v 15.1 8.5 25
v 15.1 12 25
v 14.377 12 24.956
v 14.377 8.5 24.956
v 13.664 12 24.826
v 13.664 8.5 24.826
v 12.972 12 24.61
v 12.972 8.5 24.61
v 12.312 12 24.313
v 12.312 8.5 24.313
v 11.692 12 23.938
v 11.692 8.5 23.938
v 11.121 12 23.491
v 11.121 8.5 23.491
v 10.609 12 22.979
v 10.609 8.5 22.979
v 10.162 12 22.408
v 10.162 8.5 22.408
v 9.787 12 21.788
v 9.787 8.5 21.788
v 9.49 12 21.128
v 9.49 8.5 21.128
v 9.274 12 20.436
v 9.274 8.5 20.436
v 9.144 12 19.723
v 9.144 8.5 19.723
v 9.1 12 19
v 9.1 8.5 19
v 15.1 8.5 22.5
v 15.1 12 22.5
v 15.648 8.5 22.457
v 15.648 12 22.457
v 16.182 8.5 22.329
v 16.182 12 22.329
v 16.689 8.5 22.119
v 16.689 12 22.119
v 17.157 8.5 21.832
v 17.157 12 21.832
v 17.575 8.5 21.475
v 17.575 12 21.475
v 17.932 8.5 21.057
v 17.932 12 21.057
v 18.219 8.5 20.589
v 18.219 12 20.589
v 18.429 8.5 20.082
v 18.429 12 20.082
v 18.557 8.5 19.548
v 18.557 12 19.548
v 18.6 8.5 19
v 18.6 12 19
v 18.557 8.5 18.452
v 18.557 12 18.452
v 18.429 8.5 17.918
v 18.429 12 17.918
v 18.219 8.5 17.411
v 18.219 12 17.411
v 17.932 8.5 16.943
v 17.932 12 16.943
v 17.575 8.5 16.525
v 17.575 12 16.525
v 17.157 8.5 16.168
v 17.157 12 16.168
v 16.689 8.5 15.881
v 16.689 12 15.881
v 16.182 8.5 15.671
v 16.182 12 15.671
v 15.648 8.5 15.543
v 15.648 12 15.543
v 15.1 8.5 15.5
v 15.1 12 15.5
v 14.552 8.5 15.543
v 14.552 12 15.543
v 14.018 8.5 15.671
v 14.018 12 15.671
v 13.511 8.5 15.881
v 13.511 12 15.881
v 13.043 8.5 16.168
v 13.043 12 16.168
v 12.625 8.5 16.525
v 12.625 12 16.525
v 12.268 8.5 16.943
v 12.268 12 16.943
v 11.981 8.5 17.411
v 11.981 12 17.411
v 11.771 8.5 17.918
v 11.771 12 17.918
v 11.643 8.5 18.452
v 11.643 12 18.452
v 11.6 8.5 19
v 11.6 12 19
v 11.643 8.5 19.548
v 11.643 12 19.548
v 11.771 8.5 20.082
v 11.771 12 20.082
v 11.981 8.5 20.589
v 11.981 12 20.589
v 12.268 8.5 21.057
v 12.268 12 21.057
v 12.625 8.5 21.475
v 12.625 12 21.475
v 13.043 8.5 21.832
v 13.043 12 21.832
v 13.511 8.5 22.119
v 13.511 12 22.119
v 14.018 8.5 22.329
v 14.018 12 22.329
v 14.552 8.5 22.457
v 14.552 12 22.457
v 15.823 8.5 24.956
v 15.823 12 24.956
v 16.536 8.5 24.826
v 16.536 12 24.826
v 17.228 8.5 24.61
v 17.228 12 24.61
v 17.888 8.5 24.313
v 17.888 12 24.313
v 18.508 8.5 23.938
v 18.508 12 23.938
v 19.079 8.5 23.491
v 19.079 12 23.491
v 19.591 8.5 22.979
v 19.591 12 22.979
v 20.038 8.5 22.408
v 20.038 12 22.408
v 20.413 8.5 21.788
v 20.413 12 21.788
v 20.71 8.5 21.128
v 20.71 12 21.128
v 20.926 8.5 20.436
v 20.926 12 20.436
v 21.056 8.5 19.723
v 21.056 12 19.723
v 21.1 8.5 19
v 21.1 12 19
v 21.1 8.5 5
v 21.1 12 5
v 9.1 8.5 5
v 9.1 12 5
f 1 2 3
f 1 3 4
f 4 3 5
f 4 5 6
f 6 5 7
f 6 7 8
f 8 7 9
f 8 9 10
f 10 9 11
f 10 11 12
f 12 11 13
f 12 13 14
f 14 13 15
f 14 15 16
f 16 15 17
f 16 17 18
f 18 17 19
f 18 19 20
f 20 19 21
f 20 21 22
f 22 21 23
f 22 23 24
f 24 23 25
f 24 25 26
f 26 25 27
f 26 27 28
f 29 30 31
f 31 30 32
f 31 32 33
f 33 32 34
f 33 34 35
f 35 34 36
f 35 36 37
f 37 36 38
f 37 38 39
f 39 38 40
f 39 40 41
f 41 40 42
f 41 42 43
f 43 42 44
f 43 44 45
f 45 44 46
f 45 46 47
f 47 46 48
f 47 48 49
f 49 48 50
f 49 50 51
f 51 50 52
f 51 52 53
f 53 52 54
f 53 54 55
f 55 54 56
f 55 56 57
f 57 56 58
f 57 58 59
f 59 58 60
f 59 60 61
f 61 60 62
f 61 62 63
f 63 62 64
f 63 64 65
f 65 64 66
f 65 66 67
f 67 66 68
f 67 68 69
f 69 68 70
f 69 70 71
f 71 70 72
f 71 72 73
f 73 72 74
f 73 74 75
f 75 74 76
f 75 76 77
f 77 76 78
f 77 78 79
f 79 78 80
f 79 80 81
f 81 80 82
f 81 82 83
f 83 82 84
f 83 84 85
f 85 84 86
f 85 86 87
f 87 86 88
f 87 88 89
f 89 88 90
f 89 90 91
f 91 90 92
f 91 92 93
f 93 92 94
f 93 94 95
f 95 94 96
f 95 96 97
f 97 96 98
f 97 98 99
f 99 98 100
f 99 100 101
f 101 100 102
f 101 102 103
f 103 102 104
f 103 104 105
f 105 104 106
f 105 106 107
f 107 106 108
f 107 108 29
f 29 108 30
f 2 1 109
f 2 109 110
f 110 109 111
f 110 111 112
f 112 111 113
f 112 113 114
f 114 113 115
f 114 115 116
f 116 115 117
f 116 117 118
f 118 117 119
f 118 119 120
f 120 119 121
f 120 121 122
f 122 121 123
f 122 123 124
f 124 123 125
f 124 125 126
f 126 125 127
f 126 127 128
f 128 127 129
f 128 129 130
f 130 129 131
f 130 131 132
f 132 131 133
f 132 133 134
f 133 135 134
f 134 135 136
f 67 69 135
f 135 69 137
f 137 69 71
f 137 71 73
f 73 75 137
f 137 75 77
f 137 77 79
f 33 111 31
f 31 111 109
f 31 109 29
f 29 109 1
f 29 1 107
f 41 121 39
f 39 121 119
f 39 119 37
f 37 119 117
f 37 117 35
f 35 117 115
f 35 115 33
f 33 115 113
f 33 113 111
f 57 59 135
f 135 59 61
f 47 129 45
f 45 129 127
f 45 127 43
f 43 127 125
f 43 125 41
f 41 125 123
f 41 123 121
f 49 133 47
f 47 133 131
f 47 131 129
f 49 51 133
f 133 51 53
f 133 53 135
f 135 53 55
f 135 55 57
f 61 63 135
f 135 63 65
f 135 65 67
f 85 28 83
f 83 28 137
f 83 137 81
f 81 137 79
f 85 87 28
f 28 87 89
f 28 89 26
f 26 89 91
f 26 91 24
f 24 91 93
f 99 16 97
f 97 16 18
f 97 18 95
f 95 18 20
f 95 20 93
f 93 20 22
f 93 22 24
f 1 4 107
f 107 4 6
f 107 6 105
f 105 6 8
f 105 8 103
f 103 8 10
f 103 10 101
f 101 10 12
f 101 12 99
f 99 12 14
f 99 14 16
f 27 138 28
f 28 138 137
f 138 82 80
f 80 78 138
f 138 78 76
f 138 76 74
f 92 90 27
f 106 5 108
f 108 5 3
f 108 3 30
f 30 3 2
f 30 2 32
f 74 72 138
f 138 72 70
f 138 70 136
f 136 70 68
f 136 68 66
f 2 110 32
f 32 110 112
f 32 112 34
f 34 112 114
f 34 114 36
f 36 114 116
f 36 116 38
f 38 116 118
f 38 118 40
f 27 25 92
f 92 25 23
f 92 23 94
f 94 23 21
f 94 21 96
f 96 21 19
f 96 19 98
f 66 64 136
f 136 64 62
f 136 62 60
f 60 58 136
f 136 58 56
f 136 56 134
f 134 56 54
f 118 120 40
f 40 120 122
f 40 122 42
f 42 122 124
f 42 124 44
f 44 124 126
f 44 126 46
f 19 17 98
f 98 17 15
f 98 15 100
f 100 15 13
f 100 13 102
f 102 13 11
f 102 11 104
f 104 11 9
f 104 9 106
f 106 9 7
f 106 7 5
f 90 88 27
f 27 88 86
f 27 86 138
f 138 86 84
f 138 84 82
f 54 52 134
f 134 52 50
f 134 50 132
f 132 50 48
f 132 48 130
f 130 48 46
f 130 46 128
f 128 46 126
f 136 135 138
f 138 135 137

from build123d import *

# Parameters (mm, degrees)
BOSS_EXTRUDE1_DEPTH     = 5
SKETCH2_W               = 3.5
SKETCH2_H               = 12
SKETCH2_W_2             = 3
BOSS_EXTRUDE2_DEPTH     = 20
SKETCH3_W               = 12
SKETCH3_H               = 3
SKETCH3_H_2             = 3.5
BOSS_EXTRUDE3_DEPTH     = 20
SKETCH4_W               = 5
SKETCH4_H               = 8
BOSS_EXTRUDE4_DEPTH     = 18
SKETCH5_R               = 3.5
CUT_EXTRUDE1_DEPTH      = 3.5
SKETCH6_R               = 3.5
CUT_EXTRUDE2_DEPTH      = 3.5
SKETCH7_R               = 1.625
CUT_EXTRUDE3_DEPTH      = 5
SKETCH8_R               = 2.5
CUT_EXTRUDE4_DEPTH      = 3
SKETCH9_R               = 2.5
CUT_EXTRUDE5_DEPTH      = 3
FILLET1_R               = 6
FILLET2_R               = 2
FILLET4_R               = 4
SURFACECUT2_START       = -20
SURFACECUT2_DEPTH       = 25
SURFACECUT2_START_2     = 5
SURFACECUT2_2_OUTLINE_W = 12
SURFACECUT2_2_OUTLINE_H = 3
SURFACECUT2_2_DEPTH     = 20


# Read off the part's stored shape, not the designer's step: SurfaceCut2
with BuildPart() as part:
    # Sketch1 → Boss-Extrude1 (new body)
    with BuildSketch(Plane.XY):
        Polygon((21.1, 0), (38.5, 0), (38.5, 12), (17.6, 12), (17.6, 26), (12.6, 26), (12.6, 12), (0, 12), (0, 0), (9.1, 0), (9.1, -26.5), (21.1, -26.5), align=None)
    extrude(amount=BOSS_EXTRUDE1_DEPTH)

    # Sketch2 → Boss-Extrude2 (add)
    with BuildSketch(Plane(origin=(0, 0, 0), x_dir=(-1, 0, 0), z_dir=(0, 0, -1))):
        with Locations((-1.75, 6)):
            Rectangle(SKETCH2_W, SKETCH2_H)
        with Locations((-37, 6)):
            Rectangle(SKETCH2_W_2, SKETCH2_H)
    extrude(amount=BOSS_EXTRUDE2_DEPTH)

    # Sketch3 → Boss-Extrude3 (add)
    with BuildSketch(Plane.XY.offset(5)):
        with Locations((15.1, -25)):
            Rectangle(SKETCH3_W, SKETCH3_H)
        with Locations((15.1, 10.25)):
            Rectangle(SKETCH3_W, SKETCH3_H_2)
    extrude(amount=BOSS_EXTRUDE3_DEPTH)

    # Sketch4 → Boss-Extrude4 (add)
    with BuildSketch(Plane(origin=(0, 0, 0), x_dir=(-1, 0, 0), z_dir=(0, 0, -1))):
        with Locations((-15.1, 22)):
            Rectangle(SKETCH4_W, SKETCH4_H)
    extrude(amount=BOSS_EXTRUDE4_DEPTH)

    # Sketch5 → Cut-Extrude1 (cut)
    with BuildSketch(Plane.ZY):
        with Locations((-14, 6)):
            Circle(SKETCH5_R)
    extrude(amount=-CUT_EXTRUDE1_DEPTH, mode=Mode.SUBTRACT)

    # Sketch6 → Cut-Extrude2 (cut)
    with BuildSketch(Plane(origin=(0, 12, 0), x_dir=(1, 0, 0), z_dir=(0, 1, 0))):
        with Locations(Location((15.1, -19, 0), (0, 0, 270))):
            Circle(SKETCH6_R)
    extrude(amount=-CUT_EXTRUDE2_DEPTH, mode=Mode.SUBTRACT)

    # Sketch7 → Cut-Extrude3 (cut)
    with BuildSketch(Plane.ZY.offset(-12.6)):
        with Locations((-14, 22)):
            Circle(SKETCH7_R)
    extrude(amount=-CUT_EXTRUDE3_DEPTH, mode=Mode.SUBTRACT)

    # Sketch8 → Cut-Extrude4 (cut)
    with BuildSketch(Plane.ZY.offset(-35.5)):
        with Locations((-14, 6)):
            Circle(SKETCH8_R)
    extrude(amount=-CUT_EXTRUDE4_DEPTH, mode=Mode.SUBTRACT)

    # Sketch9 → Cut-Extrude5 (cut)
    with BuildSketch(Plane(origin=(0, -23.5, 0), x_dir=(1, 0, 0), z_dir=(0, 1, 0))):
        with Locations(Location((15.1, -19, 0), (0, 0, 270))):
            Circle(SKETCH9_R)
    extrude(amount=-CUT_EXTRUDE5_DEPTH, mode=Mode.SUBTRACT)

    # Fillet1
    fillet1_edges = [part.edges().sort_by_distance(p)[0] for p in [
        (21.1, -25, 25),
        (9.1, -25, 25),
        (37, 0, -20),
        (37, 12, -20),
        (21.1, 10.25, 25),
        (9.1, 10.25, 25),
        (1.75, 0, -20),
        (1.75, 12, -20),
    ]]
    fillet(fillet1_edges, radius=FILLET1_R - 0.0001)  # a hair under: the kernel refuses the full size

    # Fillet2
    fillet2_edges = [part.edges().sort_by_distance(p)[0] for p in [
        (15.1, -26.5, 0),
        (38.5, 6, 5),
        (0, 6, 5),
        (15.1, 18, 0),
    ]]
    fillet(fillet2_edges, radius=FILLET2_R)

    # Fillet4
    fillet4_edges = [part.edges().sort_by_distance(p)[0] for p in [
        (15.1, 26, 5),
        (15.1, 26, -18),
        (15.1, 18, -18),
    ]]
    fillet(fillet4_edges, radius=FILLET4_R - 0.0001)  # a hair under: the kernel refuses the full size

    # SurfaceCut2 outline → SurfaceCut2 (cut)
    with BuildSketch(Plane.XY.offset(SURFACECUT2_START)):
        Polygon((0, 12), (0, 0), (9.1, 0), (9.1, -26.5), (21.1, -26.5), (21.1, 0), (38.5, 0), (38.5, 12), (17.6, 12), (17.6, 26), (12.6, 26), (12.6, 12), align=None)
    extrude(amount=SURFACECUT2_DEPTH, mode=Mode.SUBTRACT)

    # SurfaceCut2 2 outline → SurfaceCut2 2 (cut)
    with BuildSketch(Plane.XY.offset(SURFACECUT2_START_2)):
        with Locations((15.1, -25)):
            Rectangle(SURFACECUT2_2_OUTLINE_W, SURFACECUT2_2_OUTLINE_H)
    extrude(amount=SURFACECUT2_2_DEPTH, mode=Mode.SUBTRACT)


solid = part.part
